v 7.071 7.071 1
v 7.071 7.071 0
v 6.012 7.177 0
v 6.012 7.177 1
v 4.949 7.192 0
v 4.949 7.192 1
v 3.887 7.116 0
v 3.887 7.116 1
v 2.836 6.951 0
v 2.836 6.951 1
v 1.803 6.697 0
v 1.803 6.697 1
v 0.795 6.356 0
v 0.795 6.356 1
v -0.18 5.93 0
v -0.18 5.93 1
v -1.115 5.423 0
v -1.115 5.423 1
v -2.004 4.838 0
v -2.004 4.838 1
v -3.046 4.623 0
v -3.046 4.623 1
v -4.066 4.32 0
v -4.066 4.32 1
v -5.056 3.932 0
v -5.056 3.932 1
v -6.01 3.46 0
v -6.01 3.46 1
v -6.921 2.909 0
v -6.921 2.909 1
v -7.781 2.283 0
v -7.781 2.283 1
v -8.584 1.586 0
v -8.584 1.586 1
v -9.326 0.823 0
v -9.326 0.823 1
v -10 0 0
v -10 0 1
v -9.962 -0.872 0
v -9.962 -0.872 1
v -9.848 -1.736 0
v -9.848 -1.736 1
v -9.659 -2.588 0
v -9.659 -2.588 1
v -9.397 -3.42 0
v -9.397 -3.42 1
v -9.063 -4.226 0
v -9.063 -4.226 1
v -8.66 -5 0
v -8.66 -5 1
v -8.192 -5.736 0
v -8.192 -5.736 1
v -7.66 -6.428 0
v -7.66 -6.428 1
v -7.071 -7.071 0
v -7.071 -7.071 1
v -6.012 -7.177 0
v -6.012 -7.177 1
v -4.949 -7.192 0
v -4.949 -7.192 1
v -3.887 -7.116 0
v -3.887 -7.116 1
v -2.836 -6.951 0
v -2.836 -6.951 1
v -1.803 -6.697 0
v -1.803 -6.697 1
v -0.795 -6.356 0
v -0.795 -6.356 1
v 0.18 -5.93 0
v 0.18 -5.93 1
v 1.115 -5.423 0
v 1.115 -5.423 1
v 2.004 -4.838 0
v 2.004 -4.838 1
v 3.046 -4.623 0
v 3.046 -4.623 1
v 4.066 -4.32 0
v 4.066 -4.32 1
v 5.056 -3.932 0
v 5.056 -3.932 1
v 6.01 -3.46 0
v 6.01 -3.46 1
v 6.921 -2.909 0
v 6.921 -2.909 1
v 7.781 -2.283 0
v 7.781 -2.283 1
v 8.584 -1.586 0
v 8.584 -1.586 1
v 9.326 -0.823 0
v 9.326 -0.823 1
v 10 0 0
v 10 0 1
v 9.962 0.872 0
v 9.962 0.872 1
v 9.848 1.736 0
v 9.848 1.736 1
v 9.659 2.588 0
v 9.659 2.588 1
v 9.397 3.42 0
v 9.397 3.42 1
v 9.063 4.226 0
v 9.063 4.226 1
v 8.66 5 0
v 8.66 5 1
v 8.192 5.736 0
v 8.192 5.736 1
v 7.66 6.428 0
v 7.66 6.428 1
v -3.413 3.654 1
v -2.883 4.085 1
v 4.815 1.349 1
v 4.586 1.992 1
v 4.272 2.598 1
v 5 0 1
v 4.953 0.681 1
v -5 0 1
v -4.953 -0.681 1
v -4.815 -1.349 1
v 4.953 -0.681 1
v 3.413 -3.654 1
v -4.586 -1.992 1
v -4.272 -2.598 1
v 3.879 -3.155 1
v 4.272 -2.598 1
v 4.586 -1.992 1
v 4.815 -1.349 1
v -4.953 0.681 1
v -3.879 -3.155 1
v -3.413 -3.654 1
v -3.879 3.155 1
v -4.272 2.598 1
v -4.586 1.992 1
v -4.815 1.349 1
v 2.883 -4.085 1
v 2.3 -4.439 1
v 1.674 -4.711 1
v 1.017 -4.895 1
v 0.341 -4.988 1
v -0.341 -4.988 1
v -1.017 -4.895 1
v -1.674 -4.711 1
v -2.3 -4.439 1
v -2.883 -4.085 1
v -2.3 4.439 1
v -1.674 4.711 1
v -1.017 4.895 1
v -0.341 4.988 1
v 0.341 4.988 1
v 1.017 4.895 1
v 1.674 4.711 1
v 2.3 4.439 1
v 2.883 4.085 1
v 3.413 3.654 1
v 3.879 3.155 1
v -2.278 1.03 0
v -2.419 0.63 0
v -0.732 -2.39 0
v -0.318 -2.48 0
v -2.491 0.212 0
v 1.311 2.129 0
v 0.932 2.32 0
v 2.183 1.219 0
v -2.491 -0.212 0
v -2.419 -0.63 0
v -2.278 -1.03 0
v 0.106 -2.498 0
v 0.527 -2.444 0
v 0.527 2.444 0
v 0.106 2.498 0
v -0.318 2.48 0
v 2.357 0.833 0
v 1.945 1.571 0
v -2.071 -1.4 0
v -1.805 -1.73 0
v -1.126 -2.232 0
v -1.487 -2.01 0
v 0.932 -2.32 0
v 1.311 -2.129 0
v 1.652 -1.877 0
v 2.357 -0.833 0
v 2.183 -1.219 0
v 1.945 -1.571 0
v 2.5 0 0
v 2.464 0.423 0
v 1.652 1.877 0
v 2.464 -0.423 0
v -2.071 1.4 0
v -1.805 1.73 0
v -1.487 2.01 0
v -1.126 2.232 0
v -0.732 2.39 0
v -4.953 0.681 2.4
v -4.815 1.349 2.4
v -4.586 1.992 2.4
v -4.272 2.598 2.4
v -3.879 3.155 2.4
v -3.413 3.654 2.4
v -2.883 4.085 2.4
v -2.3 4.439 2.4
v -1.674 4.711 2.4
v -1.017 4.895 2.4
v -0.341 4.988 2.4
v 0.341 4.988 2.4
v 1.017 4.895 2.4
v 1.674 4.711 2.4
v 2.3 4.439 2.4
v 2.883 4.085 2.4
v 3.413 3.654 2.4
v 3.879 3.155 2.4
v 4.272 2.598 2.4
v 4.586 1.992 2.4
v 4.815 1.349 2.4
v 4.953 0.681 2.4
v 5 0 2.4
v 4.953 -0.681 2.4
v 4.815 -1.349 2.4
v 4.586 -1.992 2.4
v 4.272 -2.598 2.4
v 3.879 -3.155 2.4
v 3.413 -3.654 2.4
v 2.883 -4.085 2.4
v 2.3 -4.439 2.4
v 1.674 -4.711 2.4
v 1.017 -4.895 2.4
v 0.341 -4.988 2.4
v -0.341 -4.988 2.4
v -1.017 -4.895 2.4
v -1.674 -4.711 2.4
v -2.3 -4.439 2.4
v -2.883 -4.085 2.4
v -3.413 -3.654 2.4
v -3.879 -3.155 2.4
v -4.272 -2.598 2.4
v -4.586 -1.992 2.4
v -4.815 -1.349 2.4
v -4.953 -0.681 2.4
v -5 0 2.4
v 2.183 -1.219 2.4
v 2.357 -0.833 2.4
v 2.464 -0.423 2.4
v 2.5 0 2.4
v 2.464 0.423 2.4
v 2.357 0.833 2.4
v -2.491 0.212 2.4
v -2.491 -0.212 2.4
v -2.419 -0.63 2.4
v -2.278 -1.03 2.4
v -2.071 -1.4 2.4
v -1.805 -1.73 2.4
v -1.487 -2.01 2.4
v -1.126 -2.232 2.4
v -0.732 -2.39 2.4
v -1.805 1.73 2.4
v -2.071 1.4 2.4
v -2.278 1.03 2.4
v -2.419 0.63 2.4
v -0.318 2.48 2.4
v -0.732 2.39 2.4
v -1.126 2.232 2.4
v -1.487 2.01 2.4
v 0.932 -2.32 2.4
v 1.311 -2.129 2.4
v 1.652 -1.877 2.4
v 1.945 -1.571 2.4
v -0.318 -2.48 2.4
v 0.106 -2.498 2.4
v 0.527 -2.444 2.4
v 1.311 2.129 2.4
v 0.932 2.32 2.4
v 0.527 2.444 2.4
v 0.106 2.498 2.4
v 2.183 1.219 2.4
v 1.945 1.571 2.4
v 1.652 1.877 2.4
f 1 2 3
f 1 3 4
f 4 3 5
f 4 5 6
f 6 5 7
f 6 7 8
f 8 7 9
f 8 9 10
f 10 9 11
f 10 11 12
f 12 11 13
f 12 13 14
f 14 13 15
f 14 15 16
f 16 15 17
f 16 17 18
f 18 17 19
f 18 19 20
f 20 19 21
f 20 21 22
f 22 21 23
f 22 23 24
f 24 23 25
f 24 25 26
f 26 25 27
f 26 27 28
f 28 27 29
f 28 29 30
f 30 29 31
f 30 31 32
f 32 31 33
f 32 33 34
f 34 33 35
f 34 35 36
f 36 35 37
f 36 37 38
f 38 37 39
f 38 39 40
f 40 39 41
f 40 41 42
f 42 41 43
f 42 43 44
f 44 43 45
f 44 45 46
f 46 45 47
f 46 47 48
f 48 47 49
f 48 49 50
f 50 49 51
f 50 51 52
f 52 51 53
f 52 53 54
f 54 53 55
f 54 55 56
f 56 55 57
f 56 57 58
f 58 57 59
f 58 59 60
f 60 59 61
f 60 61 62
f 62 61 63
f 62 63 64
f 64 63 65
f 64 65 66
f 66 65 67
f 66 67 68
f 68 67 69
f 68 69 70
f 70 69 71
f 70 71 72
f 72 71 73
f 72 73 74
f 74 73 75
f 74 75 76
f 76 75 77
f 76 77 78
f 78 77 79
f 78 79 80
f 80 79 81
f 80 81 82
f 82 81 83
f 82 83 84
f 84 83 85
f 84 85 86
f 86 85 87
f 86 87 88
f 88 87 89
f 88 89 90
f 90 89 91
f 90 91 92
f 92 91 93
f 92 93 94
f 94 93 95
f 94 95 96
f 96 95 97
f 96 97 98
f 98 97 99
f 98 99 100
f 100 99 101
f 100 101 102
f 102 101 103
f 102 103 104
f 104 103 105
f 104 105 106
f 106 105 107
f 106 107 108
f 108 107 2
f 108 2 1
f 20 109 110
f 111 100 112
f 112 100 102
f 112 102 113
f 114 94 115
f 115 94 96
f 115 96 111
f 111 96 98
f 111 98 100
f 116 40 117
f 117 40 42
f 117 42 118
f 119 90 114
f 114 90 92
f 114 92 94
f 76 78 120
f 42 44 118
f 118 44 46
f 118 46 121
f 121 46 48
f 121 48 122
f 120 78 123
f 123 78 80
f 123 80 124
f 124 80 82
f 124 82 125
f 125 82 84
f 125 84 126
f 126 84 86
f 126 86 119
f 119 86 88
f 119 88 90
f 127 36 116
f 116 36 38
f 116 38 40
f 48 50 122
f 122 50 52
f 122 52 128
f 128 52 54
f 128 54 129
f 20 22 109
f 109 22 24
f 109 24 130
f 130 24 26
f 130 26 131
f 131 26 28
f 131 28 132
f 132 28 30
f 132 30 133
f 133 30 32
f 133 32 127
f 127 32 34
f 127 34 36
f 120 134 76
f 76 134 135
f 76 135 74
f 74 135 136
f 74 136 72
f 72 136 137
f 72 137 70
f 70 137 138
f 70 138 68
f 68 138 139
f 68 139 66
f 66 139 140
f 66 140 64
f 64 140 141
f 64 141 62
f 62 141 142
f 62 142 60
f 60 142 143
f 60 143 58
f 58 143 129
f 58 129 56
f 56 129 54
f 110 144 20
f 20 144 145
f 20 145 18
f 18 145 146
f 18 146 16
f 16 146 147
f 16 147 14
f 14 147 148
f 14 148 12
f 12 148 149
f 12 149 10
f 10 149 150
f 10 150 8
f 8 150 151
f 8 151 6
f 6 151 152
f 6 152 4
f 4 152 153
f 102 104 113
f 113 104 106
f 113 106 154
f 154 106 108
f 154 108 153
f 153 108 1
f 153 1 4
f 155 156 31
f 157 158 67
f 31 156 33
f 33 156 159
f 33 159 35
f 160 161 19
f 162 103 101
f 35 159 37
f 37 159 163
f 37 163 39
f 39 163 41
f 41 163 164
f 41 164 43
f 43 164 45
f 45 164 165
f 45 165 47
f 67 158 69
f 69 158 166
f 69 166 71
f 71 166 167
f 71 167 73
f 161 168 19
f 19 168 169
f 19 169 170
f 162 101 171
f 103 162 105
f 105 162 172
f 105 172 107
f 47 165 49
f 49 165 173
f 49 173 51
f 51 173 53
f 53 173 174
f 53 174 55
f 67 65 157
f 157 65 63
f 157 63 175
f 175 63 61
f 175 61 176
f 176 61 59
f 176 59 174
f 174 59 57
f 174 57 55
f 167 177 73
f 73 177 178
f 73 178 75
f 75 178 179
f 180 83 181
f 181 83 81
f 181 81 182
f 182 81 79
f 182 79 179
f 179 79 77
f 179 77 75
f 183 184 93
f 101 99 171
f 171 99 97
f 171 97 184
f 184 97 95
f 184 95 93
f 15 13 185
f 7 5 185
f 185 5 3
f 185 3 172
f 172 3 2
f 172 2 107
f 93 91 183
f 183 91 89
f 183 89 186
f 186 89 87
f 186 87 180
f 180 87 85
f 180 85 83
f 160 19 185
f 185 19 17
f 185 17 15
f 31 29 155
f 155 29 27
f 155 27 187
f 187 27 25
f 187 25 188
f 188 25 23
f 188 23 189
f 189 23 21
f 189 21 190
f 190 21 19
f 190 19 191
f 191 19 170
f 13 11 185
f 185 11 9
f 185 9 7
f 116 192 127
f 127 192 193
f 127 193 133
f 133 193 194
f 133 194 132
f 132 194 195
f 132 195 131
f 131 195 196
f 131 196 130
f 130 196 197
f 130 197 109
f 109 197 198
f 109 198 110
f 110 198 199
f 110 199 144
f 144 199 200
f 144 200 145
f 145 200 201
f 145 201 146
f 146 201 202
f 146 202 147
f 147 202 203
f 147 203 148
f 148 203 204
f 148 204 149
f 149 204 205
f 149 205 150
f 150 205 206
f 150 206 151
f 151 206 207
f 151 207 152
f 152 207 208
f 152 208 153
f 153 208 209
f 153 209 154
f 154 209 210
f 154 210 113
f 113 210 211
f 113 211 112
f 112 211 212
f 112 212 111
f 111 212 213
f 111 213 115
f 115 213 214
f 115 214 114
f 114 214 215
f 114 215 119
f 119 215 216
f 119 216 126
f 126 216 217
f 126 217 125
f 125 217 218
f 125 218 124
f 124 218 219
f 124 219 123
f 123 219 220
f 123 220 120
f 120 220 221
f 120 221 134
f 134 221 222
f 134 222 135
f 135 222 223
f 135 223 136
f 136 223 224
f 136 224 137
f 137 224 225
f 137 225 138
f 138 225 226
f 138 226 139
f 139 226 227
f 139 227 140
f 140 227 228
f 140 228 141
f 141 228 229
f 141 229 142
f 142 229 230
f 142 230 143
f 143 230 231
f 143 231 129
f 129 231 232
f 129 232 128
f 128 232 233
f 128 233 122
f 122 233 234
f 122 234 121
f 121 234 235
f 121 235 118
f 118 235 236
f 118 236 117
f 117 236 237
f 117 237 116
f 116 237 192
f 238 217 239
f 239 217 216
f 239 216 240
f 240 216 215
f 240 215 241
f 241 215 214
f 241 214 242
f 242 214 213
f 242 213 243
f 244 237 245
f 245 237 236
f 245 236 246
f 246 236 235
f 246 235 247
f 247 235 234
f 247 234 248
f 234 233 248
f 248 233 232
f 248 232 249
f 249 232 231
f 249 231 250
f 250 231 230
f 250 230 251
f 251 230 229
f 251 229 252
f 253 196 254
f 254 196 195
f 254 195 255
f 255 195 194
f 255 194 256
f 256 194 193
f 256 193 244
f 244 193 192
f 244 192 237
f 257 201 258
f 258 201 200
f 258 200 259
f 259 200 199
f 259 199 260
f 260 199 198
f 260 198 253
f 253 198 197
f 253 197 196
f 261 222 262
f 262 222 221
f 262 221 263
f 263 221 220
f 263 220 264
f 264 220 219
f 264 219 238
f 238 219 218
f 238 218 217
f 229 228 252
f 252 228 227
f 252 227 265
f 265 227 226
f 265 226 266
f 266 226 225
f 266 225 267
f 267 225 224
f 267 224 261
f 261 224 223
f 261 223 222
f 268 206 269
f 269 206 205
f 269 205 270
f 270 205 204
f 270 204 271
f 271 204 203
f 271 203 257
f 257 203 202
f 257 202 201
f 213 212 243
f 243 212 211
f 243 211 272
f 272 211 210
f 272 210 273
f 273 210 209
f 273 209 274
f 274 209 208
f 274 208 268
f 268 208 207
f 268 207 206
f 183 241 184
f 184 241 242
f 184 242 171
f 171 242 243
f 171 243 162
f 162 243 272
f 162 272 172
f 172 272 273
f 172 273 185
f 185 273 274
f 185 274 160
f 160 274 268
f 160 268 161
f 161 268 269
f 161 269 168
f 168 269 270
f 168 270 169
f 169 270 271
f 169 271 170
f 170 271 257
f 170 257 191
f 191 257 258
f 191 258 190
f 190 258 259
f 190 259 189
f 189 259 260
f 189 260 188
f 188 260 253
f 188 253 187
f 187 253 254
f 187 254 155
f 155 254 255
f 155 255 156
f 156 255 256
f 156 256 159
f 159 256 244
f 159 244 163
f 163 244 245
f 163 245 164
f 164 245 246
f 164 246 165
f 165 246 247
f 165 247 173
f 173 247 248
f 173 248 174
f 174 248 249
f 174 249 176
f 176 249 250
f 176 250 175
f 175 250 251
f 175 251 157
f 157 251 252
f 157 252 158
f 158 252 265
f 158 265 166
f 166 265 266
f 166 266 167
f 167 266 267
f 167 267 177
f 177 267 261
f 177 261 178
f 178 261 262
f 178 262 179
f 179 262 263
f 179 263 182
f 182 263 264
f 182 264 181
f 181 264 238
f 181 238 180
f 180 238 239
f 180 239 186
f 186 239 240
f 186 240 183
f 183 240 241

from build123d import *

# Parameters (mm, degrees)
BOSS_EXTRUDE1_DEPTH = 1
SKETCH2_R           = 5
BOSS_EXTRUDE2_DEPTH = 1.4
SKETCH3_R           = 2.5
CUT_EXTRUDE1_DEPTH  = 8


with BuildPart() as part:
    # Sketch1 → Boss-Extrude1 (new body)
    with BuildSketch(Plane.XY):
        with BuildLine():
            ThreePointArc((-2.00408914, 4.838299183), (-6.471230468, 3.194539552), (-10, 0))
            ThreePointArc((-10, 0), (-9.238795325, -3.826834324), (-7.071067812, -7.071067812))
            ThreePointArc((-7.071067812, -7.071067812), (-2.316970366, -6.834731526), (2.00408914, -4.838299183))
            ThreePointArc((2.00408914, -4.838299183), (6.471230468, -3.194539552), (10, 0))
            ThreePointArc((10, 0), (9.238795325, 3.826834324), (7.071067812, 7.071067812))
            ThreePointArc((7.071067812, 7.071067812), (2.316970366, 6.834731526), (-2.00408914, 4.838299183))
        make_face()
    extrude(amount=BOSS_EXTRUDE1_DEPTH)

    # Sketch2 → Boss-Extrude2 (add)
    with BuildSketch(Plane.XY.offset(1)):
        Circle(SKETCH2_R)
    extrude(amount=BOSS_EXTRUDE2_DEPTH)

    # Sketch3 → Cut-Extrude1 (cut)
    with BuildSketch(Plane.XY.offset(2.4)):
        Circle(SKETCH3_R)
    extrude(amount=-CUT_EXTRUDE1_DEPTH, mode=Mode.SUBTRACT)


solid = part.part
